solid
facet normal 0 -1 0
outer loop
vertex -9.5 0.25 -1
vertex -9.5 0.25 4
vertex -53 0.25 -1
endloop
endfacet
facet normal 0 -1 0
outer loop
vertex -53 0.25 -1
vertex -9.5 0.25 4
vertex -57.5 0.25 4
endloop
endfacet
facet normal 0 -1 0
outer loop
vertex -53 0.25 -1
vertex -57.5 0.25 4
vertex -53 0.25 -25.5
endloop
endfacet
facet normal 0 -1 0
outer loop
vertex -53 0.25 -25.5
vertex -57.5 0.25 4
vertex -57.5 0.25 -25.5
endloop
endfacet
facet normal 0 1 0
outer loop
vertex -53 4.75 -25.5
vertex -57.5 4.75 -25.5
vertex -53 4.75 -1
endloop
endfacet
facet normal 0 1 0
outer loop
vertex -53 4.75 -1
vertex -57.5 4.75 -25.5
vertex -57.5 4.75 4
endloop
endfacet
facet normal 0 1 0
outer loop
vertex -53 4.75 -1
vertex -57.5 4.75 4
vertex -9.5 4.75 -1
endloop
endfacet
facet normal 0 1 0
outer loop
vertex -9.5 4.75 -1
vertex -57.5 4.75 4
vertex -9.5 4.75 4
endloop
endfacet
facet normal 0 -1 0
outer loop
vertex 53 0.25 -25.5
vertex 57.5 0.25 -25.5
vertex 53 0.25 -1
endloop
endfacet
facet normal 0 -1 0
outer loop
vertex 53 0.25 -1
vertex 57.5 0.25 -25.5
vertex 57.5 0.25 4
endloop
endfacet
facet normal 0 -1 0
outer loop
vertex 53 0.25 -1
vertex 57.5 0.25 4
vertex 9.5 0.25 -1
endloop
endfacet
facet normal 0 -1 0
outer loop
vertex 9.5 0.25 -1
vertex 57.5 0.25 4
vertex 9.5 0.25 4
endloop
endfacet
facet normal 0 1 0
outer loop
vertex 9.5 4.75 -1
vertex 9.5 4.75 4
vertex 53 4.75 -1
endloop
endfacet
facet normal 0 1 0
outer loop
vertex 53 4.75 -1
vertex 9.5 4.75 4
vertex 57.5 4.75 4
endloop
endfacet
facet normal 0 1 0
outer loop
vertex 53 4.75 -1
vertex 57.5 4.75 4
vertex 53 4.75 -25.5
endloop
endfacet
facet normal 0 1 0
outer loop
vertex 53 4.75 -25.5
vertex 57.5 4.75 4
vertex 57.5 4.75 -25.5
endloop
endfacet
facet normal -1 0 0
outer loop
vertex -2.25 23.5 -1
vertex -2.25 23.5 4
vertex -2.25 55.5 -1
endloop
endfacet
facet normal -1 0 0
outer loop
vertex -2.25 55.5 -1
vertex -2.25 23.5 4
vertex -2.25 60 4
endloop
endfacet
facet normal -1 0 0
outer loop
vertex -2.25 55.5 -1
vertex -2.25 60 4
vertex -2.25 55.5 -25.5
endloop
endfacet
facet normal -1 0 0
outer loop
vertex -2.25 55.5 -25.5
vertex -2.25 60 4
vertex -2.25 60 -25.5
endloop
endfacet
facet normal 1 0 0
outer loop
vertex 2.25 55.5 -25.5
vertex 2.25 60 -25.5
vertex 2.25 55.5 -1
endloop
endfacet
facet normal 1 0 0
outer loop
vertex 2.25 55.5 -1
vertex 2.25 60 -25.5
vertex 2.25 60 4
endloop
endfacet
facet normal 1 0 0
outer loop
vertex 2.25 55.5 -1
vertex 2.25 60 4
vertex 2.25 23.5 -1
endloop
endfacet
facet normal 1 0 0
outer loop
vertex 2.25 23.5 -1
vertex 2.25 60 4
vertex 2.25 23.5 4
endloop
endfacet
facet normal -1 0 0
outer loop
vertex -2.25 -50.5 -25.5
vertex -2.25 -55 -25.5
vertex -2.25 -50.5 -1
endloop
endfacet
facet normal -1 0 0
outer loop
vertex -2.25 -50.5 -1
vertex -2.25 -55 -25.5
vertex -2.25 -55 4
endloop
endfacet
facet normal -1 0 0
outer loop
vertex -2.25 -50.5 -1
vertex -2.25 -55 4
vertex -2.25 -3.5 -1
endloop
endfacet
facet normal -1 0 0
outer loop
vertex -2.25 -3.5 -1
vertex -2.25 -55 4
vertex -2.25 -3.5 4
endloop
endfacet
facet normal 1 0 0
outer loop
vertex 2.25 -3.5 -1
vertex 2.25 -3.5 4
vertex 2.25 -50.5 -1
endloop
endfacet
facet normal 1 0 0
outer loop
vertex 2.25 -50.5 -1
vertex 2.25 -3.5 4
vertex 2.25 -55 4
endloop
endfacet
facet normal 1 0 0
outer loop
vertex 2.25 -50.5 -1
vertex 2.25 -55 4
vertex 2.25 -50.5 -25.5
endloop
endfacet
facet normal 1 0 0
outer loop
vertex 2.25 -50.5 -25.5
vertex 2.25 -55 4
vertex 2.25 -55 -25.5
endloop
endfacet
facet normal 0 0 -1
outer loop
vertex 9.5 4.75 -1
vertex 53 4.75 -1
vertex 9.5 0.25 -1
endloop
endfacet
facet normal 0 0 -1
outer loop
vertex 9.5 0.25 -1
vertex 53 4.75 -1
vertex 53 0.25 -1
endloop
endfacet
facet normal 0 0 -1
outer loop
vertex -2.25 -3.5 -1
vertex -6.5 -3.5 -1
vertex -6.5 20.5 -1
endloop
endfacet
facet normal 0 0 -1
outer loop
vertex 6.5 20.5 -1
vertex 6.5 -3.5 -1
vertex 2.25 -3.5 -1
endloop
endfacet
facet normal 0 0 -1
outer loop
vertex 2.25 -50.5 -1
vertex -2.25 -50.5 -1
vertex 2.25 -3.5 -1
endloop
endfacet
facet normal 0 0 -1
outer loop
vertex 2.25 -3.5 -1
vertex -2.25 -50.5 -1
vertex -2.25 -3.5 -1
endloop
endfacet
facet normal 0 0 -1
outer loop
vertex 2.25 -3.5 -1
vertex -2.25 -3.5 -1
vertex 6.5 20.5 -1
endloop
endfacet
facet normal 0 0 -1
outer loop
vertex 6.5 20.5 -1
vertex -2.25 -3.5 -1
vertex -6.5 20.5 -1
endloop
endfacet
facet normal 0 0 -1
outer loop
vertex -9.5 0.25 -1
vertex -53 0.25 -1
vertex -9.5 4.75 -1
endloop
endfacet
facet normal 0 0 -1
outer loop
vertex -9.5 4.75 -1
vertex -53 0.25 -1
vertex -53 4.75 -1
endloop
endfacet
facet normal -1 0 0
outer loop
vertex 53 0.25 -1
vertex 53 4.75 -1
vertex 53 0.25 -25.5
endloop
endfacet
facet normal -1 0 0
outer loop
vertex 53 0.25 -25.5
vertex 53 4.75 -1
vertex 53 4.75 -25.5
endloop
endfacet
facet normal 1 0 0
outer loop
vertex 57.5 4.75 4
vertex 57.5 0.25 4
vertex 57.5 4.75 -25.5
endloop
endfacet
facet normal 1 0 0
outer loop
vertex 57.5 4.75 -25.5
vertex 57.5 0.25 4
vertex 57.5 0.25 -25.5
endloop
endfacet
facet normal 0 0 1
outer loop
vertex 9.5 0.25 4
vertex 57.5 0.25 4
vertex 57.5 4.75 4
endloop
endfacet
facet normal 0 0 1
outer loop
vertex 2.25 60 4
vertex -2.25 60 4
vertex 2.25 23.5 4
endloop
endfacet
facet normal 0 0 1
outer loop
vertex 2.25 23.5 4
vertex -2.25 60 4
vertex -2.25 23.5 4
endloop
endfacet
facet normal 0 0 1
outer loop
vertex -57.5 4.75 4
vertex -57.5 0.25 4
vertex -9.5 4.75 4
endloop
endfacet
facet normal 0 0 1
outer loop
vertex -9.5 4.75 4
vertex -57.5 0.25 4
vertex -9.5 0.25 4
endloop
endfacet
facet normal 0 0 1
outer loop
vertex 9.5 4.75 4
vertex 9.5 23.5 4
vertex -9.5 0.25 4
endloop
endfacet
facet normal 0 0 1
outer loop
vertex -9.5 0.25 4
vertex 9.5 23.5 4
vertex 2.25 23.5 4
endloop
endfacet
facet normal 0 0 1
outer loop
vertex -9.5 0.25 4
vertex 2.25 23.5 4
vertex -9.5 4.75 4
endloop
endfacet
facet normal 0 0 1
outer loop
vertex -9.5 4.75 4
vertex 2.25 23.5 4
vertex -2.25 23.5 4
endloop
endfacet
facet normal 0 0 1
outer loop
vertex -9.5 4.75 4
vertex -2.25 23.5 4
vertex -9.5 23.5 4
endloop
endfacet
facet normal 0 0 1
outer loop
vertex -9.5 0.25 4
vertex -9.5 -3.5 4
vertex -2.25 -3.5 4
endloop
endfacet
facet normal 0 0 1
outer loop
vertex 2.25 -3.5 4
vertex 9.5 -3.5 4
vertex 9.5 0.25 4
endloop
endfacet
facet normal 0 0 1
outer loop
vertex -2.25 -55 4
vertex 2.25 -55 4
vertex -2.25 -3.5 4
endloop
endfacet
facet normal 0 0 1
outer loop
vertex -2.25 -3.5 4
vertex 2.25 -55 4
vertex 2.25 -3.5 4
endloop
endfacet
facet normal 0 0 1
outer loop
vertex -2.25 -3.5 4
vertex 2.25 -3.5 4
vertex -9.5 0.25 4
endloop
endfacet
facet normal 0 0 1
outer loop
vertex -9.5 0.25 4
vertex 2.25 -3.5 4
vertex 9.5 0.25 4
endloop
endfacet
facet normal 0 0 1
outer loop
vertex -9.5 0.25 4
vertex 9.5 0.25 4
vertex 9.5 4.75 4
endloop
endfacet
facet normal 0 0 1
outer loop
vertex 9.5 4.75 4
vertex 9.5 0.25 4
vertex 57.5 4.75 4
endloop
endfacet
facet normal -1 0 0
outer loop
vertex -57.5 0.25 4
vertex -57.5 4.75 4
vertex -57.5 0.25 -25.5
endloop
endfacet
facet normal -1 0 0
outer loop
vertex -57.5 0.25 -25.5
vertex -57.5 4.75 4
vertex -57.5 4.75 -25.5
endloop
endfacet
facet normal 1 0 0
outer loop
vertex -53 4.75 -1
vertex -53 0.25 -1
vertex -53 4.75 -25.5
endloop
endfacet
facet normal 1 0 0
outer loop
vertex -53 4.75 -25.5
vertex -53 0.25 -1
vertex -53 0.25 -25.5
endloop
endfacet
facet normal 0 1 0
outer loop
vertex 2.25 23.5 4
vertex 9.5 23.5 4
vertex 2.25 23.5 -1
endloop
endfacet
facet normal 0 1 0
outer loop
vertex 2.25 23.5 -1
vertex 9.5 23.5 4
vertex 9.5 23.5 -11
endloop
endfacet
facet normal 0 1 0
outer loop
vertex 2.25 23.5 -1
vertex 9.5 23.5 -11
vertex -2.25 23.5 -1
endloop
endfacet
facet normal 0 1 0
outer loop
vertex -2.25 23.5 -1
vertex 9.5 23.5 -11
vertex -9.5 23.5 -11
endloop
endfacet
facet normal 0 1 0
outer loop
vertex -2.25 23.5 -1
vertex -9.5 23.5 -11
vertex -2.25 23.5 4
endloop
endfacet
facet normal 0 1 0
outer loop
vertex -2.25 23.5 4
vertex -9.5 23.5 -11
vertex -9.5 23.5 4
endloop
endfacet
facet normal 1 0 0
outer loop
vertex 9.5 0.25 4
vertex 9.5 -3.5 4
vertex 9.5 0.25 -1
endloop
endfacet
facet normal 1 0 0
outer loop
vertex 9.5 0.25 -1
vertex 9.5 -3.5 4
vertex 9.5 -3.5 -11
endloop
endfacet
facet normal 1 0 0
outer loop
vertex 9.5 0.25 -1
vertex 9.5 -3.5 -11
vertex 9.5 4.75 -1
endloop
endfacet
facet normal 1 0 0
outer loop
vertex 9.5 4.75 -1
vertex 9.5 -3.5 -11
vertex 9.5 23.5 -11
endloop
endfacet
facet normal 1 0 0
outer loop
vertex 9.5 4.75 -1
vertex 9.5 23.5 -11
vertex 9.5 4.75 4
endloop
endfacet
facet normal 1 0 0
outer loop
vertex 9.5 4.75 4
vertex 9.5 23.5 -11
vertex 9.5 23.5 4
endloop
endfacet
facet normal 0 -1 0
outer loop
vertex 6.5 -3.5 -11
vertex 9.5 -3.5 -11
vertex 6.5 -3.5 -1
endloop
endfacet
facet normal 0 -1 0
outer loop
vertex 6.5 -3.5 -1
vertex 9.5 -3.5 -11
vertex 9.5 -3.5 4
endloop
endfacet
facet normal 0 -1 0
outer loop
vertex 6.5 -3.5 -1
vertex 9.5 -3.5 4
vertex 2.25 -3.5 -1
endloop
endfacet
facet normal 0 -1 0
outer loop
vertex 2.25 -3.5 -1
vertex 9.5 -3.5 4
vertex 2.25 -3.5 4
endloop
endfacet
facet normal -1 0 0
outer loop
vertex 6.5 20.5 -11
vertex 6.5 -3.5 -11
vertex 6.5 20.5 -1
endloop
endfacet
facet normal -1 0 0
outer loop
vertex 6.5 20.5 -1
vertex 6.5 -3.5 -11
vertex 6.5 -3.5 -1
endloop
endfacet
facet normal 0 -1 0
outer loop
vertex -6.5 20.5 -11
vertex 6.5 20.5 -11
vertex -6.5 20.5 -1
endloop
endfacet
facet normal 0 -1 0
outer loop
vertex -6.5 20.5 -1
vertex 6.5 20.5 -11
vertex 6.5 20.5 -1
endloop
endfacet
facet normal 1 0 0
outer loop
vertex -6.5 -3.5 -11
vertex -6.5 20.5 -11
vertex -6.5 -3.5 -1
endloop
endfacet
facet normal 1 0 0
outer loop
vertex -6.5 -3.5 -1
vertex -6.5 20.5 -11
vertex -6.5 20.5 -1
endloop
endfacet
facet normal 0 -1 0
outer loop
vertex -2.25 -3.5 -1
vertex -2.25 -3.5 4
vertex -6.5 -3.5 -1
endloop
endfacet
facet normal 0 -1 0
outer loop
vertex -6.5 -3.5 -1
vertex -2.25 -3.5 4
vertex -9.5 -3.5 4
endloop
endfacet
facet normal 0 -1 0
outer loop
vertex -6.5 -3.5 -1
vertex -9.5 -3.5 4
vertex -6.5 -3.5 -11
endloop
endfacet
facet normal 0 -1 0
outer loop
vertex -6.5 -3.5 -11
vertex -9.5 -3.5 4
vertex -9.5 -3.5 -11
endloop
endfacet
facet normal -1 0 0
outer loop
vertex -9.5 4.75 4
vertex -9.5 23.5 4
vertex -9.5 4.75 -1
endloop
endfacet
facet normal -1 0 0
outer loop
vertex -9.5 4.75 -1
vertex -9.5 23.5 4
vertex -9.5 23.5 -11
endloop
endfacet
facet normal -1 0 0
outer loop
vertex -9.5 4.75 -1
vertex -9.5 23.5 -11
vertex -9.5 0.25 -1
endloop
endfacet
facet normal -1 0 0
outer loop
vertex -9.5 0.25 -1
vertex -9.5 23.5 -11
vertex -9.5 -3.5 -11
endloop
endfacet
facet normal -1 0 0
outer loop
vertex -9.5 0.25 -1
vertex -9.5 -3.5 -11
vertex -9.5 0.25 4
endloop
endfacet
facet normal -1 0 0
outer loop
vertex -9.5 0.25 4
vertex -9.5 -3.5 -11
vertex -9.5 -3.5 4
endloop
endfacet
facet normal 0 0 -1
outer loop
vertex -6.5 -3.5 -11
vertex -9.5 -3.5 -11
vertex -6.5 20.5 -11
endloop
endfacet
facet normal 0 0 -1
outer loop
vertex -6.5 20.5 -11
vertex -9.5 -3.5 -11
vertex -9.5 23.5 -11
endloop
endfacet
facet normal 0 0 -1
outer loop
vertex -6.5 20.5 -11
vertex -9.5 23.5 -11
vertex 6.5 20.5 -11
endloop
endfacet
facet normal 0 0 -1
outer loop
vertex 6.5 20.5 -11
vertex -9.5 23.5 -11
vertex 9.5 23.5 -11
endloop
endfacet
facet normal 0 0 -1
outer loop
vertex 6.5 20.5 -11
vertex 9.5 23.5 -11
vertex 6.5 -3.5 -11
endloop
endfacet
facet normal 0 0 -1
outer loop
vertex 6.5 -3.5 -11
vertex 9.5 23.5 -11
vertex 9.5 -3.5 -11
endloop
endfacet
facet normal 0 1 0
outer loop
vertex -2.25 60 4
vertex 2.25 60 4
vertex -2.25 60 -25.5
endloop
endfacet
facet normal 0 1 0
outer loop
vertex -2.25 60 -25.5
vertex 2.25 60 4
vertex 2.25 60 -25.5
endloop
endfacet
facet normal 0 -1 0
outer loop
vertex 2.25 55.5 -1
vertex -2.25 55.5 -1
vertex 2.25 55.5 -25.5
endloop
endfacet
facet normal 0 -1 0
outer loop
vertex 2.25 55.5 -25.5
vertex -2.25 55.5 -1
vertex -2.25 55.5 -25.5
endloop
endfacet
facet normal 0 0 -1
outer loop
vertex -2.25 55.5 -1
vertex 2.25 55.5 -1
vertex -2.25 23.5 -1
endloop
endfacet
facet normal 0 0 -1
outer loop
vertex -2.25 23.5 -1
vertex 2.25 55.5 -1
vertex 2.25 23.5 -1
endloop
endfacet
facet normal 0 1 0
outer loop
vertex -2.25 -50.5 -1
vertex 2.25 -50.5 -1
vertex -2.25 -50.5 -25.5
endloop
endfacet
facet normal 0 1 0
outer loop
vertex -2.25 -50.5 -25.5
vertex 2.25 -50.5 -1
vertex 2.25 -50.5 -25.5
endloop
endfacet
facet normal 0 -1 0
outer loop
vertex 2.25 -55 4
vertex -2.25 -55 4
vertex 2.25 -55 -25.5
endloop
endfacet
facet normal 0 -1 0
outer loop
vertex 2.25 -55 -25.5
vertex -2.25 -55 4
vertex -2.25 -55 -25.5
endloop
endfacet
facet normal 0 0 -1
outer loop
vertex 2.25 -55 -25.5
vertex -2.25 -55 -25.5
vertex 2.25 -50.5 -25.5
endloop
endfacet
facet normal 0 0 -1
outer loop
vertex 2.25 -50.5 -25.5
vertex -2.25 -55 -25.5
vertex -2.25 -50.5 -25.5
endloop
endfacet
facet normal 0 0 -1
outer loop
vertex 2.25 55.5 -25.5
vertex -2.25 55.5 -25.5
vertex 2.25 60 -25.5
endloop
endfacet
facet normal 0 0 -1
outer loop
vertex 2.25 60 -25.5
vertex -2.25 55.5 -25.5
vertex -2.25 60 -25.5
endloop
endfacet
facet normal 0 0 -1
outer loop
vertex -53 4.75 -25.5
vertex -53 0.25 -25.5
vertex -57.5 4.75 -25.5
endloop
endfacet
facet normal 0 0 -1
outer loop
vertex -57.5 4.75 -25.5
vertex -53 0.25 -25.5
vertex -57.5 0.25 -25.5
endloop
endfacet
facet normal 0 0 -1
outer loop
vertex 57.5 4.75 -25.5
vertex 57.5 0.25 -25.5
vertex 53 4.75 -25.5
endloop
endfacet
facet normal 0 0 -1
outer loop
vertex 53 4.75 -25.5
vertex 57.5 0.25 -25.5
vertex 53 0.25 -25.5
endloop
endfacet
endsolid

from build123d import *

# Parameters (mm, degrees)
BOSS_EXTRUDE7_DEPTH       = 2.25
BOSS_EXTRUDE7_DEPTH_BACK  = 2.25
BOSS_EXTRUDE10_DEPTH      = 10
BOSS_EXTRUDE12_DEPTH      = 2.25
BOSS_EXTRUDE12_DEPTH_BACK = 2.25
SKETCH11_W                = 19
SKETCH11_H                = 27
BOSS_EXTRUDE13_DEPTH      = 5
SKETCH12_W                = 148.824805779
SKETCH12_H                = 155.89300236
CUT_EXTRUDE1_DEPTH        = 2


with BuildPart() as part:
    # Sketch8 → Boss-Extrude7 (new body, two sides)
    with BuildSketch(Plane(origin=(0, 2.5, 0), x_dir=(1, 0, 0), z_dir=(0, 1, 0))) as boss_extrude7_sk:
        Polygon((-57.5, -4), (57.5, -4), (57.5, 27.5), (53, 27.5), (53, 1), (-53, 1), (-53, 27.5), (-57.5, 27.5), align=None)
    extrude(amount=BOSS_EXTRUDE7_DEPTH)
    extrude(boss_extrude7_sk.sketch, amount=-BOSS_EXTRUDE7_DEPTH_BACK)

    # Sketch10 → Boss-Extrude10 (add)
    with BuildSketch(Plane(origin=(0, 0, -1), x_dir=(-1, 0, 0), z_dir=(0, 0, -1))):
        Polygon((6.5, 20.5), (-6.5, 20.5), (-6.5, -2.5), (-6.5, -3.5), (-9.5, -3.5), (-9.5, -2.5), (-9.5, 23.5), (9.5, 23.5), (9.5, -2.5), (9.5, -3.5), (6.5, -3.5), (6.5, -2.5), align=None)
    extrude(amount=BOSS_EXTRUDE10_DEPTH)

    # Sketch6 → Boss-Extrude12 (add, two sides)
    with BuildSketch(Plane(origin=(0, 0, 0), x_dir=(0, 0, -1), z_dir=(1, 0, 0))) as boss_extrude12_sk:
        Polygon((27.5, 55.5), (1, 55.5), (1, -50.5), (27.5, -50.5), (27.5, -55), (-4, -55), (-4, 60), (27.5, 60), align=None)
    extrude(amount=BOSS_EXTRUDE12_DEPTH)
    extrude(boss_extrude12_sk.sketch, amount=-BOSS_EXTRUDE12_DEPTH_BACK)

    # Sketch11 → Boss-Extrude13 (add)
    with BuildSketch(Plane.XY.offset(-1)):
        with Locations((0, 10)):
            Rectangle(SKETCH11_W, SKETCH11_H)
    extrude(amount=BOSS_EXTRUDE13_DEPTH)

    # Sketch12 → Cut-Extrude1 (cut)
    with BuildSketch(Plane(origin=(0, 0, -27.5), x_dir=(-1, 0, 0), z_dir=(0, 0, -1))):
        with Locations((-7.264535374, 8.488333214)):
            Rectangle(SKETCH12_W, SKETCH12_H)
    extrude(amount=-CUT_EXTRUDE1_DEPTH, mode=Mode.SUBTRACT)


solid = part.part
